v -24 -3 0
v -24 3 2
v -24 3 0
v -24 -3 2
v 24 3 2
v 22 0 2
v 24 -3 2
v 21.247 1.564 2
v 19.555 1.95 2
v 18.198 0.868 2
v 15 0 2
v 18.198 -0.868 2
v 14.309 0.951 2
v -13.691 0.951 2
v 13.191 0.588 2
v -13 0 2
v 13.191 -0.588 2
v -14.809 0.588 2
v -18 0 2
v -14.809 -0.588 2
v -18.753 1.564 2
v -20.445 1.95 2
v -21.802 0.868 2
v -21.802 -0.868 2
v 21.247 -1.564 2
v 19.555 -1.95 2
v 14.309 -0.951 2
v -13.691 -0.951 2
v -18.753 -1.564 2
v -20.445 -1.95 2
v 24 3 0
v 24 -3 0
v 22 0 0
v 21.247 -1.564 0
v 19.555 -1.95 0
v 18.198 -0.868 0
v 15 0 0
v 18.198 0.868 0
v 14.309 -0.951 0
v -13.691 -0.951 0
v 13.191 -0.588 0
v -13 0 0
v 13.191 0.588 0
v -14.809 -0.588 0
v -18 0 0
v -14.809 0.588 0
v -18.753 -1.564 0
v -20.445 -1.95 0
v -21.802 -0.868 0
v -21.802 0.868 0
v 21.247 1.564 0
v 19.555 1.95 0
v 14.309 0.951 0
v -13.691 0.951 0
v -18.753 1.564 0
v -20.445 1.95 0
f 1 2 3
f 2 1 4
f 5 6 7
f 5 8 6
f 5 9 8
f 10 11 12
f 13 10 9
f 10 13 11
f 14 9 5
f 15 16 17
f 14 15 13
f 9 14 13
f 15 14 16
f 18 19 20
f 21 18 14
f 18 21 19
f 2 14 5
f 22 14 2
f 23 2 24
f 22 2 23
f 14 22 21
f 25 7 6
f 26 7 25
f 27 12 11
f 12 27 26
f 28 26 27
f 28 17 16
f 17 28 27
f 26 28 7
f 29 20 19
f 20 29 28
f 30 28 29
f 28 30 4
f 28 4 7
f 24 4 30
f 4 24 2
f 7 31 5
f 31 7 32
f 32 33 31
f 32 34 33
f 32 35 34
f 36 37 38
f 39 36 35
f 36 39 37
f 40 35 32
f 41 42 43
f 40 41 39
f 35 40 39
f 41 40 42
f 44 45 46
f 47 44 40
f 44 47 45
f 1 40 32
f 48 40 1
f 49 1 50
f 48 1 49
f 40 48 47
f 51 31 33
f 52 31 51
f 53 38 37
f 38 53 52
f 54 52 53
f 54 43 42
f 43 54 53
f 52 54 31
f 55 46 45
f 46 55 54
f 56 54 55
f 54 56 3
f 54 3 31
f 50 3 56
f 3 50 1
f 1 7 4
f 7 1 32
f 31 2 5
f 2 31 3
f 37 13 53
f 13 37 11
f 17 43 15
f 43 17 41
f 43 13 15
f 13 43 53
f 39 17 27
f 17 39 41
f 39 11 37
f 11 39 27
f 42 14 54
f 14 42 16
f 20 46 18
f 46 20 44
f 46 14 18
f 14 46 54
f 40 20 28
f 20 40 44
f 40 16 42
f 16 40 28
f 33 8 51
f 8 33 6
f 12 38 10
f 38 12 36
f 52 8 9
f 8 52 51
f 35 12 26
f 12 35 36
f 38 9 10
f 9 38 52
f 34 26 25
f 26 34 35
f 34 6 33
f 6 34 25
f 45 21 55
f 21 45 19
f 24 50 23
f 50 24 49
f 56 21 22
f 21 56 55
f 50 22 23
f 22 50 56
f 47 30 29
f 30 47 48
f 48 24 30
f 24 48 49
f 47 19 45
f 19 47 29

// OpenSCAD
difference() {
	translate(v = [0, 0, 1.0000000000]) {
		cube(center = true, size = [48, 6.0000000000, 2]);
	}
	translate(v = [14.0000000000, 0, 0]) {
		cylinder(d = 2, h = 10);
	}
	translate(v = [-14.0000000000, 0, 0]) {
		cylinder(d = 2, h = 10);
	}
	translate(v = [20.0000000000, 0, 0]) {
		cylinder(d = 4, h = 10);
	}
	translate(v = [-20.0000000000, 0, 0]) {
		cylinder(d = 4, h = 10);
	}
}
